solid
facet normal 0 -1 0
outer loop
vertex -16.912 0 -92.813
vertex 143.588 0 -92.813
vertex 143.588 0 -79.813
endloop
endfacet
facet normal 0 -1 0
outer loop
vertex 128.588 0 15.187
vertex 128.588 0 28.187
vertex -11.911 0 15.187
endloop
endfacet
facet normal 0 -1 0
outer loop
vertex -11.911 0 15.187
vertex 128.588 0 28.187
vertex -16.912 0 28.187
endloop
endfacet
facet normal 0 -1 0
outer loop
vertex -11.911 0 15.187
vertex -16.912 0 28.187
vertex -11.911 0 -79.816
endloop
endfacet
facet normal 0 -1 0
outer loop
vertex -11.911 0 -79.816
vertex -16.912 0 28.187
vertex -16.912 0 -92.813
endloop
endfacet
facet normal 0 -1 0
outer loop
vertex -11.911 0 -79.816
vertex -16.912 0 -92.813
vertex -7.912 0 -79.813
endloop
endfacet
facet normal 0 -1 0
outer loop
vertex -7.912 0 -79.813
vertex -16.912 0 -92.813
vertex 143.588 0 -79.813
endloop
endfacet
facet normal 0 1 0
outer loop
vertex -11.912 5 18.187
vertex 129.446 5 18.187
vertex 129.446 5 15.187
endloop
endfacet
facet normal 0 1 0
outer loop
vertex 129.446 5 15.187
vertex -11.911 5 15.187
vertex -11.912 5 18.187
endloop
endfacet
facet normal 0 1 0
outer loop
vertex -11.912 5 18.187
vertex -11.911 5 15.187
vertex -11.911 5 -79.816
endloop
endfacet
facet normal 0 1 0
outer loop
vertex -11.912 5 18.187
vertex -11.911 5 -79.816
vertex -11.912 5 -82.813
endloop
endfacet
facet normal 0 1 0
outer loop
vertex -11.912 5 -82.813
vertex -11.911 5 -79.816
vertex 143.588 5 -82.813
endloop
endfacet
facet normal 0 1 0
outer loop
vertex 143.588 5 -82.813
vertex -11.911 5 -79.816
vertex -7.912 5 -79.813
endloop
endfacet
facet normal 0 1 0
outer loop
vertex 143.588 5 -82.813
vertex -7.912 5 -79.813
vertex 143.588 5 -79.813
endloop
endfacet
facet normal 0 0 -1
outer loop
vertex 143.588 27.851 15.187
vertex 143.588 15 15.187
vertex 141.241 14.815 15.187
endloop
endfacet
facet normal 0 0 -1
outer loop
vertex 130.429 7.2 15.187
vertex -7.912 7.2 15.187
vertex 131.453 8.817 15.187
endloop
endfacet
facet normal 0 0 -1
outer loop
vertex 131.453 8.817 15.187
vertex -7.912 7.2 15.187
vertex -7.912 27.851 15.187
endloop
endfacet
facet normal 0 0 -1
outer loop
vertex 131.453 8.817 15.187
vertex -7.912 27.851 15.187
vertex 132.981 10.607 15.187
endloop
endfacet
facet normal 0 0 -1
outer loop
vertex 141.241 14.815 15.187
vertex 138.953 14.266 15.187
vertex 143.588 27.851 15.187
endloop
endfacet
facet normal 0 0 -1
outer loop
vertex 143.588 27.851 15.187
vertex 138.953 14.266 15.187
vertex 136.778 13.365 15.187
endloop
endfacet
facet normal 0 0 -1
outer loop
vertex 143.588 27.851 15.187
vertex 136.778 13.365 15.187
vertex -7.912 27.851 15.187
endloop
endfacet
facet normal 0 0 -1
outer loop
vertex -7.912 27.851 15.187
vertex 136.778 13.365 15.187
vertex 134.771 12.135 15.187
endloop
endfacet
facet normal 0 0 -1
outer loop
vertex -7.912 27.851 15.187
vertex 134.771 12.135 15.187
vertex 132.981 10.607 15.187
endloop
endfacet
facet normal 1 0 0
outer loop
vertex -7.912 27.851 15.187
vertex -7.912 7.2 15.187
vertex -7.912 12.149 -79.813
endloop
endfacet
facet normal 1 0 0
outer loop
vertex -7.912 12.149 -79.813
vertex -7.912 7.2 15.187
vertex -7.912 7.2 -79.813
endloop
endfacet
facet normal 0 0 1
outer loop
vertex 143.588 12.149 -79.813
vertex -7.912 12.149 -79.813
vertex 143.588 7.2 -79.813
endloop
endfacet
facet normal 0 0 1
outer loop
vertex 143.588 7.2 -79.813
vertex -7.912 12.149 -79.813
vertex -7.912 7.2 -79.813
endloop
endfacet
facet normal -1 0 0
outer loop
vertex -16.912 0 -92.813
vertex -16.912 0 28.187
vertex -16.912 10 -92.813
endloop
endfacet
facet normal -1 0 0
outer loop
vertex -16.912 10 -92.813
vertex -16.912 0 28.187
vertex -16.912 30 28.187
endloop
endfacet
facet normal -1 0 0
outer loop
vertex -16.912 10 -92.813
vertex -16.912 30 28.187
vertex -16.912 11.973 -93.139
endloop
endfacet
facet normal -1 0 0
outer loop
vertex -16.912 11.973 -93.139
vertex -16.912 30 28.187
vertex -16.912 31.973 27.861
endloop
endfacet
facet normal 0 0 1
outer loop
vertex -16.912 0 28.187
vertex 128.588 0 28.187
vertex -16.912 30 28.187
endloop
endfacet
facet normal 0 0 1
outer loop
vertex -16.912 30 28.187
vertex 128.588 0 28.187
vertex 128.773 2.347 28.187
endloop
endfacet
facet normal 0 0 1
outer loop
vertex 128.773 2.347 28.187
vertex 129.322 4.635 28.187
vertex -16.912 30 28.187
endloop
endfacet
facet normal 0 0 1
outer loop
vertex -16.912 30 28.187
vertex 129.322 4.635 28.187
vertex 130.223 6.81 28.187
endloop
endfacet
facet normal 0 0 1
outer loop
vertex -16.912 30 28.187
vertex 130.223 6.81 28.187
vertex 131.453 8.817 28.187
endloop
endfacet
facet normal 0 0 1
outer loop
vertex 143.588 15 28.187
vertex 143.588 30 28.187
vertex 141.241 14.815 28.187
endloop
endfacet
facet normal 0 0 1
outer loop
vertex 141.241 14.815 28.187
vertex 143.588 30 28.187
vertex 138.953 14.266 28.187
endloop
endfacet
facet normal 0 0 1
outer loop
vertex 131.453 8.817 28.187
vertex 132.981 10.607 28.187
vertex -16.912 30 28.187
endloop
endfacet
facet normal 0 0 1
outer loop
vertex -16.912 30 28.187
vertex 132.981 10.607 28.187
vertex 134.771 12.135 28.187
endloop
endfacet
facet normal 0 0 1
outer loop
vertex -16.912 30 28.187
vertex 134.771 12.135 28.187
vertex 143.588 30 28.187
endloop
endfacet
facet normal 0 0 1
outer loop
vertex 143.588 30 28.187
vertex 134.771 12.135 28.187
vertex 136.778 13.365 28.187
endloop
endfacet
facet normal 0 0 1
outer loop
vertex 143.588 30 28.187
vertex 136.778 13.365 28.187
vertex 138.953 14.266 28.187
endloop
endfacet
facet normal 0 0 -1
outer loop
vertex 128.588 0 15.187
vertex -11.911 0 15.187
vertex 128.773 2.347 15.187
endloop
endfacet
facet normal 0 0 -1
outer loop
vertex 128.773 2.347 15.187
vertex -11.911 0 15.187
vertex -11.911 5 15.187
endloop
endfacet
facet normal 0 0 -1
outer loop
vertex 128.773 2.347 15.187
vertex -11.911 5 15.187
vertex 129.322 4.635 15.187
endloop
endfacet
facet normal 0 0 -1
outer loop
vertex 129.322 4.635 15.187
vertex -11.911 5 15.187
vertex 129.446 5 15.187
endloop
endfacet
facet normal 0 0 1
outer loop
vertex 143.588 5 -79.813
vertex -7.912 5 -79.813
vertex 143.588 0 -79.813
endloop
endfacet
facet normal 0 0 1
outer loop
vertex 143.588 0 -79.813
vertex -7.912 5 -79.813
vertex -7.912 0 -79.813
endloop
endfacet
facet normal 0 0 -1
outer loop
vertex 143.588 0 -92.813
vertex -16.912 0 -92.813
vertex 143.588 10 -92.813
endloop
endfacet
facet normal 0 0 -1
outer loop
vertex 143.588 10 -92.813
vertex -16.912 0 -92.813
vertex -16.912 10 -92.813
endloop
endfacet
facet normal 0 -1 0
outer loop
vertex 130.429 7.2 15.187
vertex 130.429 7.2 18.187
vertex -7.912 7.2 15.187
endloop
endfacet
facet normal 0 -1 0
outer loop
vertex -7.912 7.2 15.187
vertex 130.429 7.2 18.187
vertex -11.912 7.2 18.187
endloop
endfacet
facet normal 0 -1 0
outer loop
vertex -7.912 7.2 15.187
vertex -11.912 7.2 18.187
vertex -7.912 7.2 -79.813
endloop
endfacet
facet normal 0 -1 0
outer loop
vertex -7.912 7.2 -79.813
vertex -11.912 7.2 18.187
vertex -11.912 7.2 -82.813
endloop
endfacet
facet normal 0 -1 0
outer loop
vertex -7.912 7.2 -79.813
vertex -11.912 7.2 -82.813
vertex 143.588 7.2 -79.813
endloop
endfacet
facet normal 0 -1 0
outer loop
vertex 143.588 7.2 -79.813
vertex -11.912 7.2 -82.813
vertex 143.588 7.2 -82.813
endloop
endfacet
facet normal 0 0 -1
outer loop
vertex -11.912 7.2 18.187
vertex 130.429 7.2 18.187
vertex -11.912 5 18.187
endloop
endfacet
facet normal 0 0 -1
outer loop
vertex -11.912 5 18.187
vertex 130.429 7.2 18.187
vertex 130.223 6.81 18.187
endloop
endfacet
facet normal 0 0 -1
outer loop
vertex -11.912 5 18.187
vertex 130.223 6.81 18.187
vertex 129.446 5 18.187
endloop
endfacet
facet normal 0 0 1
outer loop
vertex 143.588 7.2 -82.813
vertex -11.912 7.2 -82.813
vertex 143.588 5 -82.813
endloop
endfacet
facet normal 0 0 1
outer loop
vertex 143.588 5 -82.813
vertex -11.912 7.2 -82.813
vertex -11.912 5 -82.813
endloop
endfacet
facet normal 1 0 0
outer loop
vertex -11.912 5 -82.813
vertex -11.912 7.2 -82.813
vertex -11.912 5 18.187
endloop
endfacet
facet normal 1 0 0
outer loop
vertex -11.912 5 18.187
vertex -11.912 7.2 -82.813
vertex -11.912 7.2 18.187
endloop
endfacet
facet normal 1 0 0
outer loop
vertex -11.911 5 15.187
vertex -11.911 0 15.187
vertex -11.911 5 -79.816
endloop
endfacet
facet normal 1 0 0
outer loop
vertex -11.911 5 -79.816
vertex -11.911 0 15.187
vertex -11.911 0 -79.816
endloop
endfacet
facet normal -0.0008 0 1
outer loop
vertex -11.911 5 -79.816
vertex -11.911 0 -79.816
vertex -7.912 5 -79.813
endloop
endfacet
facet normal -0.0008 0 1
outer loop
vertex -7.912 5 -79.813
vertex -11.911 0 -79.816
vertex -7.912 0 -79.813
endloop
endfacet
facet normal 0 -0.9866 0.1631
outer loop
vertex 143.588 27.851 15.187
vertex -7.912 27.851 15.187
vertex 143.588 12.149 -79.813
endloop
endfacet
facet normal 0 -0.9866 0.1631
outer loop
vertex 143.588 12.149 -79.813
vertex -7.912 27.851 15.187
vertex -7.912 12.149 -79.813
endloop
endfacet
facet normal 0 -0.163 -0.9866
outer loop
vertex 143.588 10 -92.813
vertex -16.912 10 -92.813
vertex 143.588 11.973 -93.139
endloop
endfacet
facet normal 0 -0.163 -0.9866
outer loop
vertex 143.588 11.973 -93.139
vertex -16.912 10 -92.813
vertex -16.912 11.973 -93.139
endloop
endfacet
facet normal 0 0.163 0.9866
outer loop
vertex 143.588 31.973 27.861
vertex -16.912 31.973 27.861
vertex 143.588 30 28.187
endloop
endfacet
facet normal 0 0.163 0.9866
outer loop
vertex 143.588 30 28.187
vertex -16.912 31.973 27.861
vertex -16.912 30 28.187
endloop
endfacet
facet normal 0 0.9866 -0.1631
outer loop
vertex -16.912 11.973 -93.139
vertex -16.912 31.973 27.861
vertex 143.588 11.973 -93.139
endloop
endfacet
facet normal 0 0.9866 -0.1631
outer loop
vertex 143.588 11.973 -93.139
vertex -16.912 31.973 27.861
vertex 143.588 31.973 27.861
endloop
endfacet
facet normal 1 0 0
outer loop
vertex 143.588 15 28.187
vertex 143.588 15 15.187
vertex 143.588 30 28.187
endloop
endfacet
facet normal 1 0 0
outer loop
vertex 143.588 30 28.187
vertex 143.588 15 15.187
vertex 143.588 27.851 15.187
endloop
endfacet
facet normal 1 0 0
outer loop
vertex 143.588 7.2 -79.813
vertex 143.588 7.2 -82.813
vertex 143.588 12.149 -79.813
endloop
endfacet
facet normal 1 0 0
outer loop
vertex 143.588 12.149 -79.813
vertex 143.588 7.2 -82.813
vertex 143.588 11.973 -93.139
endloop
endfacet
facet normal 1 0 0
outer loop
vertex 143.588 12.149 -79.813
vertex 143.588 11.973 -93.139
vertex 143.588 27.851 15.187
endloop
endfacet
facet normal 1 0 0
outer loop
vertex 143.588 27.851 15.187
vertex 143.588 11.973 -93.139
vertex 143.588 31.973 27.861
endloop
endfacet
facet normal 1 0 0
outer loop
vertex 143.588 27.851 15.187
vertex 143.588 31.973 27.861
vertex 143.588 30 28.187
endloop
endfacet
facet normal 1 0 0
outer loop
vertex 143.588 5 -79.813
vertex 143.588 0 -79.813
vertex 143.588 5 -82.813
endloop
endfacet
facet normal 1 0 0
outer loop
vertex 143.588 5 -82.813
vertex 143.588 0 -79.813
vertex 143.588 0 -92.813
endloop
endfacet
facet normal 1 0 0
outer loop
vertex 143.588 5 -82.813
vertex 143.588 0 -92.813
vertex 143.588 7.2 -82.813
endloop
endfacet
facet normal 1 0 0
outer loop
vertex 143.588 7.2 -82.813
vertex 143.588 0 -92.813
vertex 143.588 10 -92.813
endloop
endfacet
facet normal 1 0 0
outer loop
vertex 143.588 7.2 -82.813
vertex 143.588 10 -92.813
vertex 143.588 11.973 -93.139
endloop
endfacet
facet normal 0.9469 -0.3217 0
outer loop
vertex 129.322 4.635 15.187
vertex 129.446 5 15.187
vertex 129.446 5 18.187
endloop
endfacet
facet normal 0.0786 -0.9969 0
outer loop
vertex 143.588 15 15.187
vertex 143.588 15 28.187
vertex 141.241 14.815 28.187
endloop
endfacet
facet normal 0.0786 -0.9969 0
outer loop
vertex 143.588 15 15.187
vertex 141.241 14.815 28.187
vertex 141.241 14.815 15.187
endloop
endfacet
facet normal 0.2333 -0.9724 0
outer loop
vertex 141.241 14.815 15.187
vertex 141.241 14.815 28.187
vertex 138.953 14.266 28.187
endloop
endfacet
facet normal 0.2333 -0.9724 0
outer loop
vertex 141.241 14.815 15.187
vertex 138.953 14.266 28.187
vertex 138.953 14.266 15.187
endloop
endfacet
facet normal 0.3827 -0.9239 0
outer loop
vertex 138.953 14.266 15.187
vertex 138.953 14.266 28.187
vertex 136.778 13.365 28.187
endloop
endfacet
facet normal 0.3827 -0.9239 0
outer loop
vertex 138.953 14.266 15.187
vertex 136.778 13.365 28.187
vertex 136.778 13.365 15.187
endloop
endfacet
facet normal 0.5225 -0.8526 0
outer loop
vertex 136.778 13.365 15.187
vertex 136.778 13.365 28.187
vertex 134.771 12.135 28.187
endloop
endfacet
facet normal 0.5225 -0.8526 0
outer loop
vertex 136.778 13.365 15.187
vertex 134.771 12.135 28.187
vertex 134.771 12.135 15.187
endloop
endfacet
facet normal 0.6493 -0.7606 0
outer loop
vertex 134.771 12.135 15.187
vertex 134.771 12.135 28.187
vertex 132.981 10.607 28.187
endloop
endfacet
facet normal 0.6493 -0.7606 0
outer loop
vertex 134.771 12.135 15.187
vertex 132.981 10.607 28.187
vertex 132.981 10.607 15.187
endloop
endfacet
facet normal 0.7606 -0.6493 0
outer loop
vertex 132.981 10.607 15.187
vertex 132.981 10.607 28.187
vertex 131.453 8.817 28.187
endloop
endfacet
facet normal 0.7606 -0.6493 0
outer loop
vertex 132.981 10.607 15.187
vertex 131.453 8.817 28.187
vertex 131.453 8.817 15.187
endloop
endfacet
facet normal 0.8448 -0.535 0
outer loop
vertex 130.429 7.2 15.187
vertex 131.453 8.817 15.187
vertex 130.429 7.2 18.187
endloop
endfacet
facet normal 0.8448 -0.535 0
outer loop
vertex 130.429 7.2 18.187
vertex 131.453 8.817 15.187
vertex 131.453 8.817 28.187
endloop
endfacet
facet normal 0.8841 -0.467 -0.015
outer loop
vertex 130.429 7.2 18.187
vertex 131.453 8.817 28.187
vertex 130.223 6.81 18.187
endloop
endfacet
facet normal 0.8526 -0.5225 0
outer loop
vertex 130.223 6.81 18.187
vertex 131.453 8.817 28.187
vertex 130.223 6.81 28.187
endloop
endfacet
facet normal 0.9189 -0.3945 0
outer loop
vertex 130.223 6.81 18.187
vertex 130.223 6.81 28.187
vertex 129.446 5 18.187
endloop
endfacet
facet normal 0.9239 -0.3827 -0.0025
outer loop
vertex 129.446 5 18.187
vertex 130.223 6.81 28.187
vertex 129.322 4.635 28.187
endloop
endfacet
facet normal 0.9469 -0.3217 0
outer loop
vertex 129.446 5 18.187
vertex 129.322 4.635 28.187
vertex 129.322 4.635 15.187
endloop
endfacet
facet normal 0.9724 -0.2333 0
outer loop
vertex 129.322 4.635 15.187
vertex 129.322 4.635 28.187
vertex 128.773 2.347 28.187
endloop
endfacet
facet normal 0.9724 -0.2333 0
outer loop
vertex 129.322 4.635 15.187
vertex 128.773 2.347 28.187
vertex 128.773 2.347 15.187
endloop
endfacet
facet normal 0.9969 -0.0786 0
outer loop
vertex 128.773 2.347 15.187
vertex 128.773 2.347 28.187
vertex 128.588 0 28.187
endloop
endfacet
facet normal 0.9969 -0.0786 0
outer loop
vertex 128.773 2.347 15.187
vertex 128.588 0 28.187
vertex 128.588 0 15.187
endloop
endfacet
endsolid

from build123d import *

# Parameters (mm, degrees)
BOSS_EXTRUDE1_DEPTH = 30
SKETCH2_W           = 101
SKETCH2_H           = 2.2
CUT_EXTRUDE1_DEPTH  = 160
CUT_EXTRUDE2_DEPTH  = 108
CUT_EXTRUDE3_DEPTH  = 202
SKETCH6_W           = 165
SKETCH6_H           = 122.641754717
BOSS_EXTRUDE2_DEPTH = 2
SKETCH7_R           = 15
CUT_EXTRUDE4_DEPTH  = 22
CUT_EXTRUDE5_DEPTH  = 4.5
CUT_EXTRUDE6_DEPTH  = 21.5


with BuildPart() as part:
    # Sketch1 → Boss-Extrude1 (new body)
    with BuildSketch(Plane(origin=(0, 0, 0), x_dir=(1, 0, 0), z_dir=(0, 1, 0))):
        Polygon((-7.912176277, -15.186960462), (-7.912176277, 79.813039538), (148.087823723, 79.813039538), (148.087823723, 92.813039538), (-16.912176277, 92.813039538), (-16.912176277, -28.186960462), (148.087823723, -28.186960462), (148.087823723, -15.186960462), align=None)
    extrude(amount=BOSS_EXTRUDE1_DEPTH)

    # Sketch2 → Cut-Extrude1 (cut)
    with BuildSketch(Plane(origin=(148.087823723, 0, 0), x_dir=(0, 0, -1), z_dir=(1, 0, 0))):
        with Locations((32.313039538, 6.1)):
            Rectangle(SKETCH2_W, SKETCH2_H)
    extrude(amount=-CUT_EXTRUDE1_DEPTH, mode=Mode.SUBTRACT)

    # Sketch4 → Cut-Extrude2 (cut)
    with BuildSketch(Plane.XZ.offset(-7.2)):
        Polygon((-7.912176277, 15.186960462), (-11.910877917, 15.186960462), (-11.910877917, -79.815923725), (-7.912176277, -79.813039538), align=None)
    extrude(amount=CUT_EXTRUDE2_DEPTH, mode=Mode.SUBTRACT)

    # Sketch5 → Cut-Extrude3 (cut)
    with BuildSketch(Plane.ZY.offset(16.912176277)):
        Polygon((-92.813039538, 10), (-92.813039538, 30), (28.186960462, 30), align=None)
    extrude(amount=-CUT_EXTRUDE3_DEPTH, mode=Mode.SUBTRACT)

    # Sketch6 → Boss-Extrude2 (add)
    with BuildSketch(Plane(origin=(0, 24.667080359, -4.077203365), x_dir=(1, 0, 0), z_dir=(0, 0.986613411390535, -0.16307659692405538))):
        with Locations((65.587823723, 28.618946233)):
            Rectangle(SKETCH6_W, SKETCH6_H)
    extrude(amount=BOSS_EXTRUDE2_DEPTH)

    # Sketch7 → Cut-Extrude4 (cut)
    with BuildSketch(Plane.XY.offset(28.186960462)):
        with Locations((148.087823723, 0)):
            Circle(SKETCH7_R)
    extrude(amount=-CUT_EXTRUDE4_DEPTH, mode=Mode.SUBTRACT)

    # Sketch8 → Cut-Extrude5 (cut)
    with BuildSketch(Plane(origin=(148.087823723, 0, 0), x_dir=(0, 0, -1), z_dir=(1, 0, 0))):
        Polygon((-28.186960462, 30), (-28.186960462, 0), (92.813039538, 0), (92.813039538, 10), (93.139192732, 11.973226823), (-27.860807268, 31.973226823), align=None)
    extrude(amount=-CUT_EXTRUDE5_DEPTH, mode=Mode.SUBTRACT)

    # Sketch9 → Cut-Extrude6 (cut)
    with BuildSketch(Plane.XY.offset(28.186960462)):
        with BuildLine():
            Line((133.087823723, 0), (143.587823723, 0))
            Line((143.587823723, 0), (143.587823723, 14.309088021))
            Line((143.587823723, 14.309088021), (143.587823723, 15))
            ThreePointArc((143.587823723, 15), (132.981222005, 10.606601718), (128.587823723, 0))
            Line((128.587823723, 0), (133.087823723, 0))
        make_face()
    extrude(amount=-CUT_EXTRUDE6_DEPTH, mode=Mode.SUBTRACT)


solid = part.part
